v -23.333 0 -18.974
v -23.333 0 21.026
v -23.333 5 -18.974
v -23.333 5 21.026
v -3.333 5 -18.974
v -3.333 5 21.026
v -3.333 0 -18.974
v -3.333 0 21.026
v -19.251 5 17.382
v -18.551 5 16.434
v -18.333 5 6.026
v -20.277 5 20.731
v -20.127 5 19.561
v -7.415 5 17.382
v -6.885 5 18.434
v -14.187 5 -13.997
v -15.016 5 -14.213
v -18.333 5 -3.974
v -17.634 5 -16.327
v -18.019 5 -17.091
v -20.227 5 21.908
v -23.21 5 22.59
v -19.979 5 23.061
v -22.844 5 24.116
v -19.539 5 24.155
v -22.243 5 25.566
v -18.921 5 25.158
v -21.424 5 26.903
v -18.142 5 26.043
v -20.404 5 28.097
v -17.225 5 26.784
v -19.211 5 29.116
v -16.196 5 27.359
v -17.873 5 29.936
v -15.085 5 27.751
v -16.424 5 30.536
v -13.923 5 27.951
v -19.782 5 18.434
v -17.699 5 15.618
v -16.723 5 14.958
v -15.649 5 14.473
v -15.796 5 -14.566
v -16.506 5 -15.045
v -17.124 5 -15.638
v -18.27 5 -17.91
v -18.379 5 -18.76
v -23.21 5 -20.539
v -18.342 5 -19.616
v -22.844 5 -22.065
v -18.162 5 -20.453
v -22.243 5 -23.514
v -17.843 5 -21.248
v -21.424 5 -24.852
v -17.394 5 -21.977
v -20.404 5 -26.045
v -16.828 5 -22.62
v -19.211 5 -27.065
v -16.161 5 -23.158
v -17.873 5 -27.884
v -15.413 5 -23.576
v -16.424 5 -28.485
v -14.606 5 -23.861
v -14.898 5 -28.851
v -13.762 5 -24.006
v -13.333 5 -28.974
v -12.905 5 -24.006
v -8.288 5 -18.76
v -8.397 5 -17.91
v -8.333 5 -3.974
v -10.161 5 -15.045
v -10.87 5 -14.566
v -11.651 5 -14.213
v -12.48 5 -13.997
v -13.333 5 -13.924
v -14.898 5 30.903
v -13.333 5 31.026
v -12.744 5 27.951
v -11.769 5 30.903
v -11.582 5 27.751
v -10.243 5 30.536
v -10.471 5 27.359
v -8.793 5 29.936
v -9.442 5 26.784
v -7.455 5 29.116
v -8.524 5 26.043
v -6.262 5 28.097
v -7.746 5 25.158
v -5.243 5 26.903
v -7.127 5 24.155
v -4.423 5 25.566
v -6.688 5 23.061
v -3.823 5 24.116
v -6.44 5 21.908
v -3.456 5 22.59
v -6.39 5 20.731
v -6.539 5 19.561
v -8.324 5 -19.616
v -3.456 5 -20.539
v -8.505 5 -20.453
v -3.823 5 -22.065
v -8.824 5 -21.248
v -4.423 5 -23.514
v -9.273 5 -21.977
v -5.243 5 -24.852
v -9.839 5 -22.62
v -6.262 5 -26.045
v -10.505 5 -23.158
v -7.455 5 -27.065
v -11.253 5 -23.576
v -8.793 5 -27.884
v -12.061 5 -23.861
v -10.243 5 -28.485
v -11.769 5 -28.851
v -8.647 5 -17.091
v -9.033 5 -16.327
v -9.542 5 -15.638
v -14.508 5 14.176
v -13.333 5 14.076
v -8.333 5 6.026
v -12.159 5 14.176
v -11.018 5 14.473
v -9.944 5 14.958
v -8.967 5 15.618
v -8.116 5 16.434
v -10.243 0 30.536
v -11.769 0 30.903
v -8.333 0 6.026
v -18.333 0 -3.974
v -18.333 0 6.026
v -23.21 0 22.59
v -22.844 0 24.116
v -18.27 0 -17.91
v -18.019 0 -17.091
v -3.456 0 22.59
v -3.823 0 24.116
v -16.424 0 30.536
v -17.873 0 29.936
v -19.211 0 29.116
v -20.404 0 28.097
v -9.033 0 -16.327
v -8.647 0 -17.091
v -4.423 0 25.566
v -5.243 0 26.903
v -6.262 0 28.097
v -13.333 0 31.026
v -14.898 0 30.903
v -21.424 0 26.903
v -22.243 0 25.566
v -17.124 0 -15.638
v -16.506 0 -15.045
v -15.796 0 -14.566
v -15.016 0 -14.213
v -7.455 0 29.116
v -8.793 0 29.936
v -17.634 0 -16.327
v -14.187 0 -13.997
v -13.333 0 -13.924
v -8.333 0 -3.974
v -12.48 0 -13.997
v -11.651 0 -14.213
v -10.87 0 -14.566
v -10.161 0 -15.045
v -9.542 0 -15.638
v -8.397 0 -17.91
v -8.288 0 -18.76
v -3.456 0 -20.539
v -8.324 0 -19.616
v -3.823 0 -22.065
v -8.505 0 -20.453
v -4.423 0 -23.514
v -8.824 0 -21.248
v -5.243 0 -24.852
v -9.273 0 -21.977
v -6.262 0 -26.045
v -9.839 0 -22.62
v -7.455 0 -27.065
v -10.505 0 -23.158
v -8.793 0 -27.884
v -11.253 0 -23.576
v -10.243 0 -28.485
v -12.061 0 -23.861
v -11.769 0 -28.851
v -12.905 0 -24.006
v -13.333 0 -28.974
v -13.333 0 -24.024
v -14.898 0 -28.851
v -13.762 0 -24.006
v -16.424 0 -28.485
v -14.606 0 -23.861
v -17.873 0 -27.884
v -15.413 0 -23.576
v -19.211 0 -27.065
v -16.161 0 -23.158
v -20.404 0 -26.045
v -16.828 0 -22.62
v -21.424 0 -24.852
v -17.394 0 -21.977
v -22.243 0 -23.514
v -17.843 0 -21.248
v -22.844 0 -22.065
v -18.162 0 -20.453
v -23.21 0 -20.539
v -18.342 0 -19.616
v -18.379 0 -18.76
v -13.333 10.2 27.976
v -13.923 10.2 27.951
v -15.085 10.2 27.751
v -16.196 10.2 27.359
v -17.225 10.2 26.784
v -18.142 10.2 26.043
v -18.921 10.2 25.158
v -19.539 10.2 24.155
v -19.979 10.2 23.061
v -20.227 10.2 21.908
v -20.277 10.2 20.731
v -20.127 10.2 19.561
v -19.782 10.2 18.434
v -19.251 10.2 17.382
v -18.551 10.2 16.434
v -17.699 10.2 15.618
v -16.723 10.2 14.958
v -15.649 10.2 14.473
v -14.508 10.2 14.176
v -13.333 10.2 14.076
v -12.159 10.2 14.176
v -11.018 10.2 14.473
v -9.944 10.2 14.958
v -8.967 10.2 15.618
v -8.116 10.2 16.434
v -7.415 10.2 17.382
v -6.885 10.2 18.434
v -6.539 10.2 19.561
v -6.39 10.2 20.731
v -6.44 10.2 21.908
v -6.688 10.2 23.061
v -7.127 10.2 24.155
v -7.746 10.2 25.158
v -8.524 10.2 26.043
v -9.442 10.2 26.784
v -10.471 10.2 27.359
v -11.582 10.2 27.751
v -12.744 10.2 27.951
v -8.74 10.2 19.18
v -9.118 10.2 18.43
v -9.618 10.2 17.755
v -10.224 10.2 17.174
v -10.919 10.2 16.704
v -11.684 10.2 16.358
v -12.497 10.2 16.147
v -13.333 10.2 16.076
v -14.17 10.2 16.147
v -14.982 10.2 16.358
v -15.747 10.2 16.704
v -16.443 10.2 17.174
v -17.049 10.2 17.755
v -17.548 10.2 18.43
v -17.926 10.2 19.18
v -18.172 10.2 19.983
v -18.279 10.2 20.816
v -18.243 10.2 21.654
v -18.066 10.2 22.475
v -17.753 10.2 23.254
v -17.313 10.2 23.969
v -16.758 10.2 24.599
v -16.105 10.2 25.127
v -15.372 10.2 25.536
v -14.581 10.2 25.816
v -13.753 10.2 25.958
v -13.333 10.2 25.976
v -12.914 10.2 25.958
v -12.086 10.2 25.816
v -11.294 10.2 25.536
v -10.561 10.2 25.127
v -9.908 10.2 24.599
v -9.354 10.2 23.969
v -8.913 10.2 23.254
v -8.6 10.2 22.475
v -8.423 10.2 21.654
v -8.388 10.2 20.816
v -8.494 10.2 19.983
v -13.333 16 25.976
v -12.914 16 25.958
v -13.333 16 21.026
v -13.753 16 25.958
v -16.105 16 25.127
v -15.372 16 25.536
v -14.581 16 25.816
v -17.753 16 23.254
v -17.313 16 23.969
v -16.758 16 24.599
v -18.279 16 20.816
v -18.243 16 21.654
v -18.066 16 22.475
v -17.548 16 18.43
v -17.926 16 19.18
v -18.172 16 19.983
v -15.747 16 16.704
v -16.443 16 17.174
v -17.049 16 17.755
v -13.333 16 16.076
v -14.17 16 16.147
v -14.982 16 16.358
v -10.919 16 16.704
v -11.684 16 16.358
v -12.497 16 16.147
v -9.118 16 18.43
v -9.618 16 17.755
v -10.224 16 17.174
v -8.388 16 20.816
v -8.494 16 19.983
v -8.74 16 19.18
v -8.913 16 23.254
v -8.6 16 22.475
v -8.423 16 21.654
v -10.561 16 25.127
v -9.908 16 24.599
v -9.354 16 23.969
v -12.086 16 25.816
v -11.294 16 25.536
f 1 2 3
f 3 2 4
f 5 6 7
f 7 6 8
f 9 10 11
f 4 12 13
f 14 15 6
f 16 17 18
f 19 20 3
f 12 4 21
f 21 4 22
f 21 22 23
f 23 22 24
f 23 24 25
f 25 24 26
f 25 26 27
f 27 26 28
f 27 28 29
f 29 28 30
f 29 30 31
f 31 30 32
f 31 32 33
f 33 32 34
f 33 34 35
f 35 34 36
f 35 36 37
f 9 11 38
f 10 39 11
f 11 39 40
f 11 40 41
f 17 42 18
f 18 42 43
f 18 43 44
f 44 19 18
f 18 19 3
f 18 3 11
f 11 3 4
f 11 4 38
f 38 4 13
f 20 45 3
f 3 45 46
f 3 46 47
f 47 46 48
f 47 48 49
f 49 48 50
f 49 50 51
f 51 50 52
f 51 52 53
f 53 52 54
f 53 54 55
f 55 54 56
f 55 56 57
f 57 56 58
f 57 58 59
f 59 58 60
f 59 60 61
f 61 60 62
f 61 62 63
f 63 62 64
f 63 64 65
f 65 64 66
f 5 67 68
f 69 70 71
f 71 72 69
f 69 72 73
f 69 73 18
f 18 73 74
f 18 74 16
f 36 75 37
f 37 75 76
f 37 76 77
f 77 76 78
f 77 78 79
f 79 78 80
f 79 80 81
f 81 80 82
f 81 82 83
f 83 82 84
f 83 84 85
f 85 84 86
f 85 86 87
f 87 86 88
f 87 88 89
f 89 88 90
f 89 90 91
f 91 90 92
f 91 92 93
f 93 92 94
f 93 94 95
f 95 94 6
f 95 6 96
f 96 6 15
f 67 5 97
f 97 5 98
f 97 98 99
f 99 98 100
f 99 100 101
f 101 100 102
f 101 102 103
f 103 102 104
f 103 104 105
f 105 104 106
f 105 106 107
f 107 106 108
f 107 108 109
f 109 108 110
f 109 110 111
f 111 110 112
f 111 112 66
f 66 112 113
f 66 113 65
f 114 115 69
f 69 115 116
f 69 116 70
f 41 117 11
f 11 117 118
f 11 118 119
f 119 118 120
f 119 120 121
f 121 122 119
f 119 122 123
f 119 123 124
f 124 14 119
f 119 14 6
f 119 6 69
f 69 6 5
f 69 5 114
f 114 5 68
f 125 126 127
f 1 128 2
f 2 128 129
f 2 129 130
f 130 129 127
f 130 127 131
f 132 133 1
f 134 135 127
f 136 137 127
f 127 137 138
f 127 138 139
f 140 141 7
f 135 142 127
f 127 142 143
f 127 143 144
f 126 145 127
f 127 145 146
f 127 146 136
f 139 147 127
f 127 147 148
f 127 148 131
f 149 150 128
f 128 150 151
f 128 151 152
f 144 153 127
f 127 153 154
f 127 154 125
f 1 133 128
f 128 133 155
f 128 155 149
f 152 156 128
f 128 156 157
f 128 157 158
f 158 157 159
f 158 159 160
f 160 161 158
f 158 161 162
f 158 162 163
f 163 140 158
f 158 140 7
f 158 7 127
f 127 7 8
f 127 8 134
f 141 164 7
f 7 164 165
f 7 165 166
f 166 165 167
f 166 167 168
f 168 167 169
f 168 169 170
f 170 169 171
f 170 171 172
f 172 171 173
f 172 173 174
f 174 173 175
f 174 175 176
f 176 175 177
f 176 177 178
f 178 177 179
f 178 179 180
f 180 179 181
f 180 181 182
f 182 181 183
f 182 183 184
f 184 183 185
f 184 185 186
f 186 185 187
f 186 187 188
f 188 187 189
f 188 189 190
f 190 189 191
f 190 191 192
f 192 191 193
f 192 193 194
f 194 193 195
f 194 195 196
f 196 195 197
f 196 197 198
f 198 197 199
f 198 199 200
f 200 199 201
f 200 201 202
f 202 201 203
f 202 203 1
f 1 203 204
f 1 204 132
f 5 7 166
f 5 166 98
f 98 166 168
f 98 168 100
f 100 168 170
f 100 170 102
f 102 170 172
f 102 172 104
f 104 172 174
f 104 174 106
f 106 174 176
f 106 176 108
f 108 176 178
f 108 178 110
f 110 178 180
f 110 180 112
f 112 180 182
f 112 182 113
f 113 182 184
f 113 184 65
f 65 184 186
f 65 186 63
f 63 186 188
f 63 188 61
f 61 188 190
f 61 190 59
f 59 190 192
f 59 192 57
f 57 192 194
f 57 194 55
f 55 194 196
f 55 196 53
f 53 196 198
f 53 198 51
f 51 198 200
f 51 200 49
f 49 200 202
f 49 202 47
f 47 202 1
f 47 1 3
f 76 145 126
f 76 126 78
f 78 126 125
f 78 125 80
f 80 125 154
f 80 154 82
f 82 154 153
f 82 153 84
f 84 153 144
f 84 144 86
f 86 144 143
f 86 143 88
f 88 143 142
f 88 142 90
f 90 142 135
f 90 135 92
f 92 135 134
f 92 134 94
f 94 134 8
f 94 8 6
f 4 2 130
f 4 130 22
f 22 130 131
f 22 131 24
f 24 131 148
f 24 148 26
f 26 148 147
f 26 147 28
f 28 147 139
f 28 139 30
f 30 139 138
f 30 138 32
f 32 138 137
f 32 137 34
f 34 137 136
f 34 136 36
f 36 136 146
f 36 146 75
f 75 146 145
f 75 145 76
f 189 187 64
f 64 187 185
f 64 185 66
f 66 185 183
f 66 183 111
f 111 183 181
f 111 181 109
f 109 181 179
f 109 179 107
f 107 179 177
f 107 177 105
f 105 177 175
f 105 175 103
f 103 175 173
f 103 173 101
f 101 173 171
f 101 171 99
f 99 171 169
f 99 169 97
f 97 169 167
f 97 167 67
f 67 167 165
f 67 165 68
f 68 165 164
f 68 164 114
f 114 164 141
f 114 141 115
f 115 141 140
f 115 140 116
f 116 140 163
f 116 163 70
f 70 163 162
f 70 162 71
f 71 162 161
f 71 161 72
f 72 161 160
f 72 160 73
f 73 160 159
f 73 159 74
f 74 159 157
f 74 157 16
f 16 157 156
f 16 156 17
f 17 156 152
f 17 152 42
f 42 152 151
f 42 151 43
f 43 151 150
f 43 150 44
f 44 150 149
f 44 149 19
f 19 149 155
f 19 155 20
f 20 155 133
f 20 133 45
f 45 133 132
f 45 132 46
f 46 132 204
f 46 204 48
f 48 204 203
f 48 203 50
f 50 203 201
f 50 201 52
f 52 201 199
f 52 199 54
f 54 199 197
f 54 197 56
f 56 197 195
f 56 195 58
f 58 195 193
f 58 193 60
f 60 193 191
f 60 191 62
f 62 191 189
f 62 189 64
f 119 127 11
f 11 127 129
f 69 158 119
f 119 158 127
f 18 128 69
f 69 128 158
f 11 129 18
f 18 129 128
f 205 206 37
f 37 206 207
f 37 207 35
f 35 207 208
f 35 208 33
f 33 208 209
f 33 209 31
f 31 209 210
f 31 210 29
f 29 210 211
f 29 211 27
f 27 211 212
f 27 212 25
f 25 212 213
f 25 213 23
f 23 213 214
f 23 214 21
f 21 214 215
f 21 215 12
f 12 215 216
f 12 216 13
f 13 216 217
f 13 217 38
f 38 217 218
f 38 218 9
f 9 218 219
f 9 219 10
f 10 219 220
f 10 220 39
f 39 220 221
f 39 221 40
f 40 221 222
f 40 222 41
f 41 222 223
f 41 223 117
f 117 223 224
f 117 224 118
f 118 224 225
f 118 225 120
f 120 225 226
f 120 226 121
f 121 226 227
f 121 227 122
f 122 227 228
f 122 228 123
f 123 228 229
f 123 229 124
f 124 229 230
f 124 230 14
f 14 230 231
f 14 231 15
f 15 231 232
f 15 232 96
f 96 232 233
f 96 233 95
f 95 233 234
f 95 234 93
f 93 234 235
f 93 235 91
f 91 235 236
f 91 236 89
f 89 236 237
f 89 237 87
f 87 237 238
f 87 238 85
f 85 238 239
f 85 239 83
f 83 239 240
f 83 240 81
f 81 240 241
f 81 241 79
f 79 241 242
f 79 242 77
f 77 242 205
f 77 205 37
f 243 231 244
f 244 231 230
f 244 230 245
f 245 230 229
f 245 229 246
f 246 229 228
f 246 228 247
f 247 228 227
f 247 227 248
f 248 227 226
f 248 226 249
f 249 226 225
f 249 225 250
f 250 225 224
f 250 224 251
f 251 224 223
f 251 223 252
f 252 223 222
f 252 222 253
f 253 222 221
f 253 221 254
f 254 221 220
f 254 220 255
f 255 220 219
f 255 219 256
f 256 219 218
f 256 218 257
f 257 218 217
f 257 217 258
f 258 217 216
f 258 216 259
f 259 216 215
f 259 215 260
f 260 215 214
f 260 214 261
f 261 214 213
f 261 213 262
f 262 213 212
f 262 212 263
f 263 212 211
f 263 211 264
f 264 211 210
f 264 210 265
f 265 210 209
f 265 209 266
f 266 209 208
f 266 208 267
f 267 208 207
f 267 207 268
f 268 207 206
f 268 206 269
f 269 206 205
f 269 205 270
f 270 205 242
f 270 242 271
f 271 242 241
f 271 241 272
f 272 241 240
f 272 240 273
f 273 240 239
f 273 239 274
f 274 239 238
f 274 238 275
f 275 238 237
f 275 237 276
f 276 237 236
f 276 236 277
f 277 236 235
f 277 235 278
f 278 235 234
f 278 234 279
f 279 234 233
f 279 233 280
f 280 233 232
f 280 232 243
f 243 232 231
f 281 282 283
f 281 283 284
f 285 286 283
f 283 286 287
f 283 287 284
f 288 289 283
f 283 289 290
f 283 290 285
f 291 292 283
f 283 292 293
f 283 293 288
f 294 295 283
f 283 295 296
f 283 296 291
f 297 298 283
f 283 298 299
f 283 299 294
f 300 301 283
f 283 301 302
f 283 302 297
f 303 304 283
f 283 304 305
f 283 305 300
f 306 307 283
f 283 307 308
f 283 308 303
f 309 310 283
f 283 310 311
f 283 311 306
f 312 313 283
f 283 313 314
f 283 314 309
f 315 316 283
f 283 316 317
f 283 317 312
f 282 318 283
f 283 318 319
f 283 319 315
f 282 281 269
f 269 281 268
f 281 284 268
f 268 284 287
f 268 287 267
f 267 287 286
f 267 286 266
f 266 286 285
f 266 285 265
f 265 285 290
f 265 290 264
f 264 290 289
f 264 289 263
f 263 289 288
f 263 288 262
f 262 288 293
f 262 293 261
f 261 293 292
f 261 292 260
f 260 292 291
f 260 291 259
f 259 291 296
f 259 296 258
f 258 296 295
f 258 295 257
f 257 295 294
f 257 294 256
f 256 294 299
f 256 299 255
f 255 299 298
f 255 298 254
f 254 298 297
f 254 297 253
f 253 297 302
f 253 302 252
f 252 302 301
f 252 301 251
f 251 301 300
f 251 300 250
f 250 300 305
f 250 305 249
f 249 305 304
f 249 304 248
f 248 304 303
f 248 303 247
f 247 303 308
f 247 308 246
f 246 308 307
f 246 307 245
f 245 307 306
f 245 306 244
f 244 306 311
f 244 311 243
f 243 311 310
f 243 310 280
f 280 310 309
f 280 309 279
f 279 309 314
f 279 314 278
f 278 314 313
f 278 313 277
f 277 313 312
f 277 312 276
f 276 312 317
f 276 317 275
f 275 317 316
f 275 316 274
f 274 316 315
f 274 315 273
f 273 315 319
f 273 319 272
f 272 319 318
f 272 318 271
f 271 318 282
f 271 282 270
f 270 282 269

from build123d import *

# Parameters (mm, degrees)
SKETCH1_W           = 20
SKETCH1_H           = 60
BOSS_EXTRUDE1_DEPTH = 5
FILLET1_R           = 10
SKETCH2_R           = 4.95
BOSS_EXTRUDE2_DEPTH = 11
SKETCH2_4_R         = 5.05
CUT_EXTRUDE1_DEPTH  = 5
SKETCH4_W           = 10
SKETCH4_H           = 10
CUT_EXTRUDE2_DEPTH  = 5
SKETCH5_R           = 6.95
BOSS_EXTRUDE3_DEPTH = 5.2


with BuildPart() as part:
    # Sketch1 → Boss-Extrude1 (new body)
    with BuildSketch(Plane(origin=(0, 0, 0), x_dir=(1, 0, 0), z_dir=(0, 1, 0))):
        with Locations((-13.333333333, -1.025641026)):
            Rectangle(SKETCH1_W, SKETCH1_H)
    extrude(amount=BOSS_EXTRUDE1_DEPTH)

    # Fillet1
    fillet1_edges = [part.edges().sort_by_distance(p)[0] for p in [
        (-23.333333333, 2.5, -28.974358974),
        (-3.333333333, 2.5, -28.974358974),
        (-23.333333333, 2.5, 31.025641026),
        (-3.333333333, 2.5, 31.025641026),
    ]]
    fillet(fillet1_edges, radius=FILLET1_R - 0.0001)  # a hair under: the kernel refuses the full size

    # Sketch2 → Boss-Extrude2 (add)
    with BuildSketch(Plane(origin=(0, 5, 0), x_dir=(1, 0, 0), z_dir=(0, 1, 0))):
        with Locations(Location((-13.333333333, -21.025641026, 0), (0, 0, 90))):
            Circle(SKETCH2_R)
    extrude(amount=BOSS_EXTRUDE2_DEPTH)

    # Sketch2<4> → Cut-Extrude1 (cut)
    with BuildSketch(Plane(origin=(0, 5, 0), x_dir=(1, 0, 0), z_dir=(0, 1, 0))):
        with Locations(Location((-13.333333333, 18.974358974, 0), (0, 0, 270))):
            Circle(SKETCH2_4_R)
    extrude(amount=-CUT_EXTRUDE1_DEPTH, mode=Mode.SUBTRACT)

    # Sketch4 → Cut-Extrude2 (cut)
    with BuildSketch(Plane(origin=(0, 5, 0), x_dir=(1, 0, 0), z_dir=(0, 1, 0))):
        with Locations((-13.333333333, -1.025641026)):
            Rectangle(SKETCH4_W, SKETCH4_H)
    extrude(amount=-CUT_EXTRUDE2_DEPTH, mode=Mode.SUBTRACT)

    # Sketch5 → Boss-Extrude3 (add)
    with BuildSketch(Plane(origin=(0, 5, 0), x_dir=(1, 0, 0), z_dir=(0, 1, 0))):
        with Locations(Location((-13.333333333, -21.025641026, 0), (0, 0, 90))):
            Circle(SKETCH5_R)
    extrude(amount=BOSS_EXTRUDE3_DEPTH)


solid = part.part
